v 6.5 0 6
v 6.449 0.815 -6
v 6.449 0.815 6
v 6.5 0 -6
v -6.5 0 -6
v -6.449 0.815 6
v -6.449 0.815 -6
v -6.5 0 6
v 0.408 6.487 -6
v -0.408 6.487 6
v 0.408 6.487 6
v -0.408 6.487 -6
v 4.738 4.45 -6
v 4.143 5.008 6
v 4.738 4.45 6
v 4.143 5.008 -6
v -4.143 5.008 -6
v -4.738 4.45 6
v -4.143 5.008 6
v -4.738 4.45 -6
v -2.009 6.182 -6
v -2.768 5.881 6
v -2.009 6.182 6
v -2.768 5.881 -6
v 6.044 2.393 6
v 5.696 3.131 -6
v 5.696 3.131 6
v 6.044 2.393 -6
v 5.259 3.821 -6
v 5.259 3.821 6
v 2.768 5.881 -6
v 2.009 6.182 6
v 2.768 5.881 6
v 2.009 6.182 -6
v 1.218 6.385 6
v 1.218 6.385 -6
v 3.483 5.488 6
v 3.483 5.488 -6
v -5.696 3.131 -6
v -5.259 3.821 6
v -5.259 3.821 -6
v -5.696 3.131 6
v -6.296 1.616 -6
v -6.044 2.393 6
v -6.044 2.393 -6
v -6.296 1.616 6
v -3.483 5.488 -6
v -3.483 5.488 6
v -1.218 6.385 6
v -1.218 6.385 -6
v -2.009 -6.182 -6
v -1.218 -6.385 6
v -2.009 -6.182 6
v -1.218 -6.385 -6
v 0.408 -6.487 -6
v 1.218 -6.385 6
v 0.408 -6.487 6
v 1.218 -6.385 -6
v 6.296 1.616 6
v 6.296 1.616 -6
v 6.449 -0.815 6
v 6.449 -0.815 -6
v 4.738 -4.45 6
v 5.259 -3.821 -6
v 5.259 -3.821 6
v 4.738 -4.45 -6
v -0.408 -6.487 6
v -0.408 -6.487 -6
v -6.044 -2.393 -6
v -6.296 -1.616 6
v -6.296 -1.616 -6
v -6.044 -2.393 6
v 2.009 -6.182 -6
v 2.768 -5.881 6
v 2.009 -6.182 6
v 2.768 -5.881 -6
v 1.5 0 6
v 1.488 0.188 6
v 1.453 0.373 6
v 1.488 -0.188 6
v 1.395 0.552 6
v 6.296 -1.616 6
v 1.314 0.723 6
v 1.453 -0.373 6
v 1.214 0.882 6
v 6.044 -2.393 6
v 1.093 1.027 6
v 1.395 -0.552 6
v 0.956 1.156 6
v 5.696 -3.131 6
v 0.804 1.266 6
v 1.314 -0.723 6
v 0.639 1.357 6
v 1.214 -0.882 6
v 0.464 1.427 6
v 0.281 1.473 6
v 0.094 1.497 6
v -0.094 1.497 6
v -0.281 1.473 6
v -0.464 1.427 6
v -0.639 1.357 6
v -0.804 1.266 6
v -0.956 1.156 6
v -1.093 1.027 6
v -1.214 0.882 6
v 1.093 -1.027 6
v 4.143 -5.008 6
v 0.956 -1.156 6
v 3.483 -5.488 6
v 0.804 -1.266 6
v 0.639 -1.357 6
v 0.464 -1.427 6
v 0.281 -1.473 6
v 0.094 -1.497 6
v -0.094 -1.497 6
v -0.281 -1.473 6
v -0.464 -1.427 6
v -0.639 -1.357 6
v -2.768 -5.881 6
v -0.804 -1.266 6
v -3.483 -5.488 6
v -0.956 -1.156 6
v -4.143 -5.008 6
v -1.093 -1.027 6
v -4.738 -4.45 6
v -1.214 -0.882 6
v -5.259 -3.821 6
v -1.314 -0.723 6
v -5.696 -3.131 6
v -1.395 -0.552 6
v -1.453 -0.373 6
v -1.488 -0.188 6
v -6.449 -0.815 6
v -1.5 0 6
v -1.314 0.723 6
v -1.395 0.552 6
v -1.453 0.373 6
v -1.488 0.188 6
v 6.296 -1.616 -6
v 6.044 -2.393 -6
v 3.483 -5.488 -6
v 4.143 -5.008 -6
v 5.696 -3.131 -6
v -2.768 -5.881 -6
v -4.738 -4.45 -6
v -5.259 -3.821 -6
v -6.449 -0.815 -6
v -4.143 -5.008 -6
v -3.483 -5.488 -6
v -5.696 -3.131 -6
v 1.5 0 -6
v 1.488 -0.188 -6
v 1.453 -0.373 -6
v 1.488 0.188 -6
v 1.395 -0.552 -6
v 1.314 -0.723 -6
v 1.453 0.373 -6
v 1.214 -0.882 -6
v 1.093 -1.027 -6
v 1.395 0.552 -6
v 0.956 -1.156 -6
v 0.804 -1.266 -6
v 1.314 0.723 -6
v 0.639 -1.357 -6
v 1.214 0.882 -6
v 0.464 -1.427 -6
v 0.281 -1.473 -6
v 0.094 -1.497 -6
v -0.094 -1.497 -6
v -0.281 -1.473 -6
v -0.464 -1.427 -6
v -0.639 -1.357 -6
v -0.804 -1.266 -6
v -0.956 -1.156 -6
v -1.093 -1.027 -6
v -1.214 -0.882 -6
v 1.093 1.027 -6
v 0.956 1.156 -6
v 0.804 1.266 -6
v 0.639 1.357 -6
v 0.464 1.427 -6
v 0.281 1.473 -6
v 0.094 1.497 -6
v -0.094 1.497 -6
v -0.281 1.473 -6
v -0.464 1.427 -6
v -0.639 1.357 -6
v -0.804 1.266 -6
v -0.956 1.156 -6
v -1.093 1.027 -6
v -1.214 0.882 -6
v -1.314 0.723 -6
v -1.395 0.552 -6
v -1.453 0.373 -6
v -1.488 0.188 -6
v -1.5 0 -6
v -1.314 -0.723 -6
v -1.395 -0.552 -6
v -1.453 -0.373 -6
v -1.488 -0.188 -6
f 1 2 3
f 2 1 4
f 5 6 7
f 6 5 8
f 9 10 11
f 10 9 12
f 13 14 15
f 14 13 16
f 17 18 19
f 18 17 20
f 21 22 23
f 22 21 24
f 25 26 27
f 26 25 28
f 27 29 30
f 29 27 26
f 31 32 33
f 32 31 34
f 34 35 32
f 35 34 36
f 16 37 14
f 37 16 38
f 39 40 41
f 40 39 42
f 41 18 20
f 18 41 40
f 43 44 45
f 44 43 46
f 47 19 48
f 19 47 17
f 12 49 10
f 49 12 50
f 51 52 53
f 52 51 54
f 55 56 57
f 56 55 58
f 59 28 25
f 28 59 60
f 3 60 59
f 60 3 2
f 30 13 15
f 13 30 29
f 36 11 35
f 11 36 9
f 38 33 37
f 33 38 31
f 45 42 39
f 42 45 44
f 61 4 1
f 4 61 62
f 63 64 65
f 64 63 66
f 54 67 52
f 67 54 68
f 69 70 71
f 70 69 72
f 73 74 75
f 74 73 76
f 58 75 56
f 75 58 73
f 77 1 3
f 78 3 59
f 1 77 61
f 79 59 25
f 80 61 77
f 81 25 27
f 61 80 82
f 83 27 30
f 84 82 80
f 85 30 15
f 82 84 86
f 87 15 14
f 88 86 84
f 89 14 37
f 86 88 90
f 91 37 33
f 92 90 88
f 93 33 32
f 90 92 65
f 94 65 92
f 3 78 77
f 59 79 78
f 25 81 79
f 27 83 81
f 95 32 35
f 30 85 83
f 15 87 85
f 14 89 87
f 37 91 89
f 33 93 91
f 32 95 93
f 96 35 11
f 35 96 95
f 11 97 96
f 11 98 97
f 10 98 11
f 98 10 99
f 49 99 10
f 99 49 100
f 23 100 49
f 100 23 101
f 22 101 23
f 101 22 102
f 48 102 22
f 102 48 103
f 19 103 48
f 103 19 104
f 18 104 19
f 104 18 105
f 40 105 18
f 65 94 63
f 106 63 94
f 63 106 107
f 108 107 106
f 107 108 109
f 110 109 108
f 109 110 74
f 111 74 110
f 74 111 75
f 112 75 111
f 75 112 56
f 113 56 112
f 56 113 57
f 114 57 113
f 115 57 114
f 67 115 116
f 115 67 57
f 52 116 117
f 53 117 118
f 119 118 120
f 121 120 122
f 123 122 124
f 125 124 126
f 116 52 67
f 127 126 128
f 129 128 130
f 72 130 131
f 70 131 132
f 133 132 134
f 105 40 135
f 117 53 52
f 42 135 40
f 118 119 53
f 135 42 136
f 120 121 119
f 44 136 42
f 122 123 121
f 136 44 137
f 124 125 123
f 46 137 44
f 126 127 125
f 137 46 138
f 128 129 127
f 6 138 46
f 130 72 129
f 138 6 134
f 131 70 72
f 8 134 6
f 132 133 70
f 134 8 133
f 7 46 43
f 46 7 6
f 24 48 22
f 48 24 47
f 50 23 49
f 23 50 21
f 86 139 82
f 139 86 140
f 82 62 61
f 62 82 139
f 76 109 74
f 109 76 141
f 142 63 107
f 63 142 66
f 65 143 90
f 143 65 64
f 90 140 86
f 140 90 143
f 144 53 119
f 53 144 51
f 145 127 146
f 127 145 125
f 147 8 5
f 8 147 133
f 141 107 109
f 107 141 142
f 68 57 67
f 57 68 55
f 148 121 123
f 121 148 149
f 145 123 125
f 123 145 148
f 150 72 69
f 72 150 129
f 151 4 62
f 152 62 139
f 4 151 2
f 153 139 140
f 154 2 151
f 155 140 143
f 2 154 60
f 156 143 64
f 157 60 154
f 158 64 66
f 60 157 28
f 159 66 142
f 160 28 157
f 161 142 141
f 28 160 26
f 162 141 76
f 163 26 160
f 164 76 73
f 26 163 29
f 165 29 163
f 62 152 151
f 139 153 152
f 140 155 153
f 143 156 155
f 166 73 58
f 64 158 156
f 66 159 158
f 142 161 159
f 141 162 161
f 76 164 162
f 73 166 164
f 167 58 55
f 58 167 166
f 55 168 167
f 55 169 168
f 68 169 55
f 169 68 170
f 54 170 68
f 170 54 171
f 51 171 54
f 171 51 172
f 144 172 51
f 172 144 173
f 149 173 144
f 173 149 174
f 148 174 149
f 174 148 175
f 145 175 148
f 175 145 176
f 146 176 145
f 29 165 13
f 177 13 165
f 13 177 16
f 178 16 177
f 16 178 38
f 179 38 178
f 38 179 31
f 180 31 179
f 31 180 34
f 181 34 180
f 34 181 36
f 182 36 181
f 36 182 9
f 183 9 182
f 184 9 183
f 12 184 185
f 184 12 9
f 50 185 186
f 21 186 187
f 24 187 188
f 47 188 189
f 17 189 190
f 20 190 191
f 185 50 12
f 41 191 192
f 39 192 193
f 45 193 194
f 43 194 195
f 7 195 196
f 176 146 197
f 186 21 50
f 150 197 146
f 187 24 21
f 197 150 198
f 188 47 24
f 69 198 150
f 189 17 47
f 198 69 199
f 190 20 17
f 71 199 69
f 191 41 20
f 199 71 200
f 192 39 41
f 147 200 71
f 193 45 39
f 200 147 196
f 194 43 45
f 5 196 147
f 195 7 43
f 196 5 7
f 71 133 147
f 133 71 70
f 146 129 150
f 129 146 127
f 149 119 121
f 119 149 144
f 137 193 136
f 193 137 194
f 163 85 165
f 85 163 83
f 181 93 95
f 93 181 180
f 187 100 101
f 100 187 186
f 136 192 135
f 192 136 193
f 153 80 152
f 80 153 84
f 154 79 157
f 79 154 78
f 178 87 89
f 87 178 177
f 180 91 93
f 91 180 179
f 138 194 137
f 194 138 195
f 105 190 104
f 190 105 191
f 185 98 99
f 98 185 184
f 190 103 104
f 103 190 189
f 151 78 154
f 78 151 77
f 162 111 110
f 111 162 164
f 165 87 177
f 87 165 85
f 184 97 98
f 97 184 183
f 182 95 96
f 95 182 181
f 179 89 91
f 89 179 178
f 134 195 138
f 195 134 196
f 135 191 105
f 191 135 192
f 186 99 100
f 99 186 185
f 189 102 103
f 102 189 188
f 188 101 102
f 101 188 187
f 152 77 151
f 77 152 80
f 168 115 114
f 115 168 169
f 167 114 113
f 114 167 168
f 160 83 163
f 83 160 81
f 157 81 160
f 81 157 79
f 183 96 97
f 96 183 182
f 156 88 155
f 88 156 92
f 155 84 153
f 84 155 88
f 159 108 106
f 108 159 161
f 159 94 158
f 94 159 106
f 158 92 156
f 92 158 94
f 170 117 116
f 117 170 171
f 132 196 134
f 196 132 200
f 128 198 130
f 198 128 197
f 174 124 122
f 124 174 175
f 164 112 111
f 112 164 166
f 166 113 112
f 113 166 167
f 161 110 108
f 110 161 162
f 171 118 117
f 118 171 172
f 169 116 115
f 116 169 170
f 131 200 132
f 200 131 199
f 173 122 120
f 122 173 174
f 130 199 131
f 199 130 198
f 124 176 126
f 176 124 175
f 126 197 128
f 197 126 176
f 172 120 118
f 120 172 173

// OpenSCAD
$fn = 50;


difference() {
	union() {
		translate(v = [0, 0, -6.0000000000]) {
			cylinder(h = 12, r = 6.5000000000);
		}
	}
	union() {
		translate(v = [0, 0, -100.0000000000]) {
			cylinder(h = 200, r = 1.5000000000);
		}
	}
}
